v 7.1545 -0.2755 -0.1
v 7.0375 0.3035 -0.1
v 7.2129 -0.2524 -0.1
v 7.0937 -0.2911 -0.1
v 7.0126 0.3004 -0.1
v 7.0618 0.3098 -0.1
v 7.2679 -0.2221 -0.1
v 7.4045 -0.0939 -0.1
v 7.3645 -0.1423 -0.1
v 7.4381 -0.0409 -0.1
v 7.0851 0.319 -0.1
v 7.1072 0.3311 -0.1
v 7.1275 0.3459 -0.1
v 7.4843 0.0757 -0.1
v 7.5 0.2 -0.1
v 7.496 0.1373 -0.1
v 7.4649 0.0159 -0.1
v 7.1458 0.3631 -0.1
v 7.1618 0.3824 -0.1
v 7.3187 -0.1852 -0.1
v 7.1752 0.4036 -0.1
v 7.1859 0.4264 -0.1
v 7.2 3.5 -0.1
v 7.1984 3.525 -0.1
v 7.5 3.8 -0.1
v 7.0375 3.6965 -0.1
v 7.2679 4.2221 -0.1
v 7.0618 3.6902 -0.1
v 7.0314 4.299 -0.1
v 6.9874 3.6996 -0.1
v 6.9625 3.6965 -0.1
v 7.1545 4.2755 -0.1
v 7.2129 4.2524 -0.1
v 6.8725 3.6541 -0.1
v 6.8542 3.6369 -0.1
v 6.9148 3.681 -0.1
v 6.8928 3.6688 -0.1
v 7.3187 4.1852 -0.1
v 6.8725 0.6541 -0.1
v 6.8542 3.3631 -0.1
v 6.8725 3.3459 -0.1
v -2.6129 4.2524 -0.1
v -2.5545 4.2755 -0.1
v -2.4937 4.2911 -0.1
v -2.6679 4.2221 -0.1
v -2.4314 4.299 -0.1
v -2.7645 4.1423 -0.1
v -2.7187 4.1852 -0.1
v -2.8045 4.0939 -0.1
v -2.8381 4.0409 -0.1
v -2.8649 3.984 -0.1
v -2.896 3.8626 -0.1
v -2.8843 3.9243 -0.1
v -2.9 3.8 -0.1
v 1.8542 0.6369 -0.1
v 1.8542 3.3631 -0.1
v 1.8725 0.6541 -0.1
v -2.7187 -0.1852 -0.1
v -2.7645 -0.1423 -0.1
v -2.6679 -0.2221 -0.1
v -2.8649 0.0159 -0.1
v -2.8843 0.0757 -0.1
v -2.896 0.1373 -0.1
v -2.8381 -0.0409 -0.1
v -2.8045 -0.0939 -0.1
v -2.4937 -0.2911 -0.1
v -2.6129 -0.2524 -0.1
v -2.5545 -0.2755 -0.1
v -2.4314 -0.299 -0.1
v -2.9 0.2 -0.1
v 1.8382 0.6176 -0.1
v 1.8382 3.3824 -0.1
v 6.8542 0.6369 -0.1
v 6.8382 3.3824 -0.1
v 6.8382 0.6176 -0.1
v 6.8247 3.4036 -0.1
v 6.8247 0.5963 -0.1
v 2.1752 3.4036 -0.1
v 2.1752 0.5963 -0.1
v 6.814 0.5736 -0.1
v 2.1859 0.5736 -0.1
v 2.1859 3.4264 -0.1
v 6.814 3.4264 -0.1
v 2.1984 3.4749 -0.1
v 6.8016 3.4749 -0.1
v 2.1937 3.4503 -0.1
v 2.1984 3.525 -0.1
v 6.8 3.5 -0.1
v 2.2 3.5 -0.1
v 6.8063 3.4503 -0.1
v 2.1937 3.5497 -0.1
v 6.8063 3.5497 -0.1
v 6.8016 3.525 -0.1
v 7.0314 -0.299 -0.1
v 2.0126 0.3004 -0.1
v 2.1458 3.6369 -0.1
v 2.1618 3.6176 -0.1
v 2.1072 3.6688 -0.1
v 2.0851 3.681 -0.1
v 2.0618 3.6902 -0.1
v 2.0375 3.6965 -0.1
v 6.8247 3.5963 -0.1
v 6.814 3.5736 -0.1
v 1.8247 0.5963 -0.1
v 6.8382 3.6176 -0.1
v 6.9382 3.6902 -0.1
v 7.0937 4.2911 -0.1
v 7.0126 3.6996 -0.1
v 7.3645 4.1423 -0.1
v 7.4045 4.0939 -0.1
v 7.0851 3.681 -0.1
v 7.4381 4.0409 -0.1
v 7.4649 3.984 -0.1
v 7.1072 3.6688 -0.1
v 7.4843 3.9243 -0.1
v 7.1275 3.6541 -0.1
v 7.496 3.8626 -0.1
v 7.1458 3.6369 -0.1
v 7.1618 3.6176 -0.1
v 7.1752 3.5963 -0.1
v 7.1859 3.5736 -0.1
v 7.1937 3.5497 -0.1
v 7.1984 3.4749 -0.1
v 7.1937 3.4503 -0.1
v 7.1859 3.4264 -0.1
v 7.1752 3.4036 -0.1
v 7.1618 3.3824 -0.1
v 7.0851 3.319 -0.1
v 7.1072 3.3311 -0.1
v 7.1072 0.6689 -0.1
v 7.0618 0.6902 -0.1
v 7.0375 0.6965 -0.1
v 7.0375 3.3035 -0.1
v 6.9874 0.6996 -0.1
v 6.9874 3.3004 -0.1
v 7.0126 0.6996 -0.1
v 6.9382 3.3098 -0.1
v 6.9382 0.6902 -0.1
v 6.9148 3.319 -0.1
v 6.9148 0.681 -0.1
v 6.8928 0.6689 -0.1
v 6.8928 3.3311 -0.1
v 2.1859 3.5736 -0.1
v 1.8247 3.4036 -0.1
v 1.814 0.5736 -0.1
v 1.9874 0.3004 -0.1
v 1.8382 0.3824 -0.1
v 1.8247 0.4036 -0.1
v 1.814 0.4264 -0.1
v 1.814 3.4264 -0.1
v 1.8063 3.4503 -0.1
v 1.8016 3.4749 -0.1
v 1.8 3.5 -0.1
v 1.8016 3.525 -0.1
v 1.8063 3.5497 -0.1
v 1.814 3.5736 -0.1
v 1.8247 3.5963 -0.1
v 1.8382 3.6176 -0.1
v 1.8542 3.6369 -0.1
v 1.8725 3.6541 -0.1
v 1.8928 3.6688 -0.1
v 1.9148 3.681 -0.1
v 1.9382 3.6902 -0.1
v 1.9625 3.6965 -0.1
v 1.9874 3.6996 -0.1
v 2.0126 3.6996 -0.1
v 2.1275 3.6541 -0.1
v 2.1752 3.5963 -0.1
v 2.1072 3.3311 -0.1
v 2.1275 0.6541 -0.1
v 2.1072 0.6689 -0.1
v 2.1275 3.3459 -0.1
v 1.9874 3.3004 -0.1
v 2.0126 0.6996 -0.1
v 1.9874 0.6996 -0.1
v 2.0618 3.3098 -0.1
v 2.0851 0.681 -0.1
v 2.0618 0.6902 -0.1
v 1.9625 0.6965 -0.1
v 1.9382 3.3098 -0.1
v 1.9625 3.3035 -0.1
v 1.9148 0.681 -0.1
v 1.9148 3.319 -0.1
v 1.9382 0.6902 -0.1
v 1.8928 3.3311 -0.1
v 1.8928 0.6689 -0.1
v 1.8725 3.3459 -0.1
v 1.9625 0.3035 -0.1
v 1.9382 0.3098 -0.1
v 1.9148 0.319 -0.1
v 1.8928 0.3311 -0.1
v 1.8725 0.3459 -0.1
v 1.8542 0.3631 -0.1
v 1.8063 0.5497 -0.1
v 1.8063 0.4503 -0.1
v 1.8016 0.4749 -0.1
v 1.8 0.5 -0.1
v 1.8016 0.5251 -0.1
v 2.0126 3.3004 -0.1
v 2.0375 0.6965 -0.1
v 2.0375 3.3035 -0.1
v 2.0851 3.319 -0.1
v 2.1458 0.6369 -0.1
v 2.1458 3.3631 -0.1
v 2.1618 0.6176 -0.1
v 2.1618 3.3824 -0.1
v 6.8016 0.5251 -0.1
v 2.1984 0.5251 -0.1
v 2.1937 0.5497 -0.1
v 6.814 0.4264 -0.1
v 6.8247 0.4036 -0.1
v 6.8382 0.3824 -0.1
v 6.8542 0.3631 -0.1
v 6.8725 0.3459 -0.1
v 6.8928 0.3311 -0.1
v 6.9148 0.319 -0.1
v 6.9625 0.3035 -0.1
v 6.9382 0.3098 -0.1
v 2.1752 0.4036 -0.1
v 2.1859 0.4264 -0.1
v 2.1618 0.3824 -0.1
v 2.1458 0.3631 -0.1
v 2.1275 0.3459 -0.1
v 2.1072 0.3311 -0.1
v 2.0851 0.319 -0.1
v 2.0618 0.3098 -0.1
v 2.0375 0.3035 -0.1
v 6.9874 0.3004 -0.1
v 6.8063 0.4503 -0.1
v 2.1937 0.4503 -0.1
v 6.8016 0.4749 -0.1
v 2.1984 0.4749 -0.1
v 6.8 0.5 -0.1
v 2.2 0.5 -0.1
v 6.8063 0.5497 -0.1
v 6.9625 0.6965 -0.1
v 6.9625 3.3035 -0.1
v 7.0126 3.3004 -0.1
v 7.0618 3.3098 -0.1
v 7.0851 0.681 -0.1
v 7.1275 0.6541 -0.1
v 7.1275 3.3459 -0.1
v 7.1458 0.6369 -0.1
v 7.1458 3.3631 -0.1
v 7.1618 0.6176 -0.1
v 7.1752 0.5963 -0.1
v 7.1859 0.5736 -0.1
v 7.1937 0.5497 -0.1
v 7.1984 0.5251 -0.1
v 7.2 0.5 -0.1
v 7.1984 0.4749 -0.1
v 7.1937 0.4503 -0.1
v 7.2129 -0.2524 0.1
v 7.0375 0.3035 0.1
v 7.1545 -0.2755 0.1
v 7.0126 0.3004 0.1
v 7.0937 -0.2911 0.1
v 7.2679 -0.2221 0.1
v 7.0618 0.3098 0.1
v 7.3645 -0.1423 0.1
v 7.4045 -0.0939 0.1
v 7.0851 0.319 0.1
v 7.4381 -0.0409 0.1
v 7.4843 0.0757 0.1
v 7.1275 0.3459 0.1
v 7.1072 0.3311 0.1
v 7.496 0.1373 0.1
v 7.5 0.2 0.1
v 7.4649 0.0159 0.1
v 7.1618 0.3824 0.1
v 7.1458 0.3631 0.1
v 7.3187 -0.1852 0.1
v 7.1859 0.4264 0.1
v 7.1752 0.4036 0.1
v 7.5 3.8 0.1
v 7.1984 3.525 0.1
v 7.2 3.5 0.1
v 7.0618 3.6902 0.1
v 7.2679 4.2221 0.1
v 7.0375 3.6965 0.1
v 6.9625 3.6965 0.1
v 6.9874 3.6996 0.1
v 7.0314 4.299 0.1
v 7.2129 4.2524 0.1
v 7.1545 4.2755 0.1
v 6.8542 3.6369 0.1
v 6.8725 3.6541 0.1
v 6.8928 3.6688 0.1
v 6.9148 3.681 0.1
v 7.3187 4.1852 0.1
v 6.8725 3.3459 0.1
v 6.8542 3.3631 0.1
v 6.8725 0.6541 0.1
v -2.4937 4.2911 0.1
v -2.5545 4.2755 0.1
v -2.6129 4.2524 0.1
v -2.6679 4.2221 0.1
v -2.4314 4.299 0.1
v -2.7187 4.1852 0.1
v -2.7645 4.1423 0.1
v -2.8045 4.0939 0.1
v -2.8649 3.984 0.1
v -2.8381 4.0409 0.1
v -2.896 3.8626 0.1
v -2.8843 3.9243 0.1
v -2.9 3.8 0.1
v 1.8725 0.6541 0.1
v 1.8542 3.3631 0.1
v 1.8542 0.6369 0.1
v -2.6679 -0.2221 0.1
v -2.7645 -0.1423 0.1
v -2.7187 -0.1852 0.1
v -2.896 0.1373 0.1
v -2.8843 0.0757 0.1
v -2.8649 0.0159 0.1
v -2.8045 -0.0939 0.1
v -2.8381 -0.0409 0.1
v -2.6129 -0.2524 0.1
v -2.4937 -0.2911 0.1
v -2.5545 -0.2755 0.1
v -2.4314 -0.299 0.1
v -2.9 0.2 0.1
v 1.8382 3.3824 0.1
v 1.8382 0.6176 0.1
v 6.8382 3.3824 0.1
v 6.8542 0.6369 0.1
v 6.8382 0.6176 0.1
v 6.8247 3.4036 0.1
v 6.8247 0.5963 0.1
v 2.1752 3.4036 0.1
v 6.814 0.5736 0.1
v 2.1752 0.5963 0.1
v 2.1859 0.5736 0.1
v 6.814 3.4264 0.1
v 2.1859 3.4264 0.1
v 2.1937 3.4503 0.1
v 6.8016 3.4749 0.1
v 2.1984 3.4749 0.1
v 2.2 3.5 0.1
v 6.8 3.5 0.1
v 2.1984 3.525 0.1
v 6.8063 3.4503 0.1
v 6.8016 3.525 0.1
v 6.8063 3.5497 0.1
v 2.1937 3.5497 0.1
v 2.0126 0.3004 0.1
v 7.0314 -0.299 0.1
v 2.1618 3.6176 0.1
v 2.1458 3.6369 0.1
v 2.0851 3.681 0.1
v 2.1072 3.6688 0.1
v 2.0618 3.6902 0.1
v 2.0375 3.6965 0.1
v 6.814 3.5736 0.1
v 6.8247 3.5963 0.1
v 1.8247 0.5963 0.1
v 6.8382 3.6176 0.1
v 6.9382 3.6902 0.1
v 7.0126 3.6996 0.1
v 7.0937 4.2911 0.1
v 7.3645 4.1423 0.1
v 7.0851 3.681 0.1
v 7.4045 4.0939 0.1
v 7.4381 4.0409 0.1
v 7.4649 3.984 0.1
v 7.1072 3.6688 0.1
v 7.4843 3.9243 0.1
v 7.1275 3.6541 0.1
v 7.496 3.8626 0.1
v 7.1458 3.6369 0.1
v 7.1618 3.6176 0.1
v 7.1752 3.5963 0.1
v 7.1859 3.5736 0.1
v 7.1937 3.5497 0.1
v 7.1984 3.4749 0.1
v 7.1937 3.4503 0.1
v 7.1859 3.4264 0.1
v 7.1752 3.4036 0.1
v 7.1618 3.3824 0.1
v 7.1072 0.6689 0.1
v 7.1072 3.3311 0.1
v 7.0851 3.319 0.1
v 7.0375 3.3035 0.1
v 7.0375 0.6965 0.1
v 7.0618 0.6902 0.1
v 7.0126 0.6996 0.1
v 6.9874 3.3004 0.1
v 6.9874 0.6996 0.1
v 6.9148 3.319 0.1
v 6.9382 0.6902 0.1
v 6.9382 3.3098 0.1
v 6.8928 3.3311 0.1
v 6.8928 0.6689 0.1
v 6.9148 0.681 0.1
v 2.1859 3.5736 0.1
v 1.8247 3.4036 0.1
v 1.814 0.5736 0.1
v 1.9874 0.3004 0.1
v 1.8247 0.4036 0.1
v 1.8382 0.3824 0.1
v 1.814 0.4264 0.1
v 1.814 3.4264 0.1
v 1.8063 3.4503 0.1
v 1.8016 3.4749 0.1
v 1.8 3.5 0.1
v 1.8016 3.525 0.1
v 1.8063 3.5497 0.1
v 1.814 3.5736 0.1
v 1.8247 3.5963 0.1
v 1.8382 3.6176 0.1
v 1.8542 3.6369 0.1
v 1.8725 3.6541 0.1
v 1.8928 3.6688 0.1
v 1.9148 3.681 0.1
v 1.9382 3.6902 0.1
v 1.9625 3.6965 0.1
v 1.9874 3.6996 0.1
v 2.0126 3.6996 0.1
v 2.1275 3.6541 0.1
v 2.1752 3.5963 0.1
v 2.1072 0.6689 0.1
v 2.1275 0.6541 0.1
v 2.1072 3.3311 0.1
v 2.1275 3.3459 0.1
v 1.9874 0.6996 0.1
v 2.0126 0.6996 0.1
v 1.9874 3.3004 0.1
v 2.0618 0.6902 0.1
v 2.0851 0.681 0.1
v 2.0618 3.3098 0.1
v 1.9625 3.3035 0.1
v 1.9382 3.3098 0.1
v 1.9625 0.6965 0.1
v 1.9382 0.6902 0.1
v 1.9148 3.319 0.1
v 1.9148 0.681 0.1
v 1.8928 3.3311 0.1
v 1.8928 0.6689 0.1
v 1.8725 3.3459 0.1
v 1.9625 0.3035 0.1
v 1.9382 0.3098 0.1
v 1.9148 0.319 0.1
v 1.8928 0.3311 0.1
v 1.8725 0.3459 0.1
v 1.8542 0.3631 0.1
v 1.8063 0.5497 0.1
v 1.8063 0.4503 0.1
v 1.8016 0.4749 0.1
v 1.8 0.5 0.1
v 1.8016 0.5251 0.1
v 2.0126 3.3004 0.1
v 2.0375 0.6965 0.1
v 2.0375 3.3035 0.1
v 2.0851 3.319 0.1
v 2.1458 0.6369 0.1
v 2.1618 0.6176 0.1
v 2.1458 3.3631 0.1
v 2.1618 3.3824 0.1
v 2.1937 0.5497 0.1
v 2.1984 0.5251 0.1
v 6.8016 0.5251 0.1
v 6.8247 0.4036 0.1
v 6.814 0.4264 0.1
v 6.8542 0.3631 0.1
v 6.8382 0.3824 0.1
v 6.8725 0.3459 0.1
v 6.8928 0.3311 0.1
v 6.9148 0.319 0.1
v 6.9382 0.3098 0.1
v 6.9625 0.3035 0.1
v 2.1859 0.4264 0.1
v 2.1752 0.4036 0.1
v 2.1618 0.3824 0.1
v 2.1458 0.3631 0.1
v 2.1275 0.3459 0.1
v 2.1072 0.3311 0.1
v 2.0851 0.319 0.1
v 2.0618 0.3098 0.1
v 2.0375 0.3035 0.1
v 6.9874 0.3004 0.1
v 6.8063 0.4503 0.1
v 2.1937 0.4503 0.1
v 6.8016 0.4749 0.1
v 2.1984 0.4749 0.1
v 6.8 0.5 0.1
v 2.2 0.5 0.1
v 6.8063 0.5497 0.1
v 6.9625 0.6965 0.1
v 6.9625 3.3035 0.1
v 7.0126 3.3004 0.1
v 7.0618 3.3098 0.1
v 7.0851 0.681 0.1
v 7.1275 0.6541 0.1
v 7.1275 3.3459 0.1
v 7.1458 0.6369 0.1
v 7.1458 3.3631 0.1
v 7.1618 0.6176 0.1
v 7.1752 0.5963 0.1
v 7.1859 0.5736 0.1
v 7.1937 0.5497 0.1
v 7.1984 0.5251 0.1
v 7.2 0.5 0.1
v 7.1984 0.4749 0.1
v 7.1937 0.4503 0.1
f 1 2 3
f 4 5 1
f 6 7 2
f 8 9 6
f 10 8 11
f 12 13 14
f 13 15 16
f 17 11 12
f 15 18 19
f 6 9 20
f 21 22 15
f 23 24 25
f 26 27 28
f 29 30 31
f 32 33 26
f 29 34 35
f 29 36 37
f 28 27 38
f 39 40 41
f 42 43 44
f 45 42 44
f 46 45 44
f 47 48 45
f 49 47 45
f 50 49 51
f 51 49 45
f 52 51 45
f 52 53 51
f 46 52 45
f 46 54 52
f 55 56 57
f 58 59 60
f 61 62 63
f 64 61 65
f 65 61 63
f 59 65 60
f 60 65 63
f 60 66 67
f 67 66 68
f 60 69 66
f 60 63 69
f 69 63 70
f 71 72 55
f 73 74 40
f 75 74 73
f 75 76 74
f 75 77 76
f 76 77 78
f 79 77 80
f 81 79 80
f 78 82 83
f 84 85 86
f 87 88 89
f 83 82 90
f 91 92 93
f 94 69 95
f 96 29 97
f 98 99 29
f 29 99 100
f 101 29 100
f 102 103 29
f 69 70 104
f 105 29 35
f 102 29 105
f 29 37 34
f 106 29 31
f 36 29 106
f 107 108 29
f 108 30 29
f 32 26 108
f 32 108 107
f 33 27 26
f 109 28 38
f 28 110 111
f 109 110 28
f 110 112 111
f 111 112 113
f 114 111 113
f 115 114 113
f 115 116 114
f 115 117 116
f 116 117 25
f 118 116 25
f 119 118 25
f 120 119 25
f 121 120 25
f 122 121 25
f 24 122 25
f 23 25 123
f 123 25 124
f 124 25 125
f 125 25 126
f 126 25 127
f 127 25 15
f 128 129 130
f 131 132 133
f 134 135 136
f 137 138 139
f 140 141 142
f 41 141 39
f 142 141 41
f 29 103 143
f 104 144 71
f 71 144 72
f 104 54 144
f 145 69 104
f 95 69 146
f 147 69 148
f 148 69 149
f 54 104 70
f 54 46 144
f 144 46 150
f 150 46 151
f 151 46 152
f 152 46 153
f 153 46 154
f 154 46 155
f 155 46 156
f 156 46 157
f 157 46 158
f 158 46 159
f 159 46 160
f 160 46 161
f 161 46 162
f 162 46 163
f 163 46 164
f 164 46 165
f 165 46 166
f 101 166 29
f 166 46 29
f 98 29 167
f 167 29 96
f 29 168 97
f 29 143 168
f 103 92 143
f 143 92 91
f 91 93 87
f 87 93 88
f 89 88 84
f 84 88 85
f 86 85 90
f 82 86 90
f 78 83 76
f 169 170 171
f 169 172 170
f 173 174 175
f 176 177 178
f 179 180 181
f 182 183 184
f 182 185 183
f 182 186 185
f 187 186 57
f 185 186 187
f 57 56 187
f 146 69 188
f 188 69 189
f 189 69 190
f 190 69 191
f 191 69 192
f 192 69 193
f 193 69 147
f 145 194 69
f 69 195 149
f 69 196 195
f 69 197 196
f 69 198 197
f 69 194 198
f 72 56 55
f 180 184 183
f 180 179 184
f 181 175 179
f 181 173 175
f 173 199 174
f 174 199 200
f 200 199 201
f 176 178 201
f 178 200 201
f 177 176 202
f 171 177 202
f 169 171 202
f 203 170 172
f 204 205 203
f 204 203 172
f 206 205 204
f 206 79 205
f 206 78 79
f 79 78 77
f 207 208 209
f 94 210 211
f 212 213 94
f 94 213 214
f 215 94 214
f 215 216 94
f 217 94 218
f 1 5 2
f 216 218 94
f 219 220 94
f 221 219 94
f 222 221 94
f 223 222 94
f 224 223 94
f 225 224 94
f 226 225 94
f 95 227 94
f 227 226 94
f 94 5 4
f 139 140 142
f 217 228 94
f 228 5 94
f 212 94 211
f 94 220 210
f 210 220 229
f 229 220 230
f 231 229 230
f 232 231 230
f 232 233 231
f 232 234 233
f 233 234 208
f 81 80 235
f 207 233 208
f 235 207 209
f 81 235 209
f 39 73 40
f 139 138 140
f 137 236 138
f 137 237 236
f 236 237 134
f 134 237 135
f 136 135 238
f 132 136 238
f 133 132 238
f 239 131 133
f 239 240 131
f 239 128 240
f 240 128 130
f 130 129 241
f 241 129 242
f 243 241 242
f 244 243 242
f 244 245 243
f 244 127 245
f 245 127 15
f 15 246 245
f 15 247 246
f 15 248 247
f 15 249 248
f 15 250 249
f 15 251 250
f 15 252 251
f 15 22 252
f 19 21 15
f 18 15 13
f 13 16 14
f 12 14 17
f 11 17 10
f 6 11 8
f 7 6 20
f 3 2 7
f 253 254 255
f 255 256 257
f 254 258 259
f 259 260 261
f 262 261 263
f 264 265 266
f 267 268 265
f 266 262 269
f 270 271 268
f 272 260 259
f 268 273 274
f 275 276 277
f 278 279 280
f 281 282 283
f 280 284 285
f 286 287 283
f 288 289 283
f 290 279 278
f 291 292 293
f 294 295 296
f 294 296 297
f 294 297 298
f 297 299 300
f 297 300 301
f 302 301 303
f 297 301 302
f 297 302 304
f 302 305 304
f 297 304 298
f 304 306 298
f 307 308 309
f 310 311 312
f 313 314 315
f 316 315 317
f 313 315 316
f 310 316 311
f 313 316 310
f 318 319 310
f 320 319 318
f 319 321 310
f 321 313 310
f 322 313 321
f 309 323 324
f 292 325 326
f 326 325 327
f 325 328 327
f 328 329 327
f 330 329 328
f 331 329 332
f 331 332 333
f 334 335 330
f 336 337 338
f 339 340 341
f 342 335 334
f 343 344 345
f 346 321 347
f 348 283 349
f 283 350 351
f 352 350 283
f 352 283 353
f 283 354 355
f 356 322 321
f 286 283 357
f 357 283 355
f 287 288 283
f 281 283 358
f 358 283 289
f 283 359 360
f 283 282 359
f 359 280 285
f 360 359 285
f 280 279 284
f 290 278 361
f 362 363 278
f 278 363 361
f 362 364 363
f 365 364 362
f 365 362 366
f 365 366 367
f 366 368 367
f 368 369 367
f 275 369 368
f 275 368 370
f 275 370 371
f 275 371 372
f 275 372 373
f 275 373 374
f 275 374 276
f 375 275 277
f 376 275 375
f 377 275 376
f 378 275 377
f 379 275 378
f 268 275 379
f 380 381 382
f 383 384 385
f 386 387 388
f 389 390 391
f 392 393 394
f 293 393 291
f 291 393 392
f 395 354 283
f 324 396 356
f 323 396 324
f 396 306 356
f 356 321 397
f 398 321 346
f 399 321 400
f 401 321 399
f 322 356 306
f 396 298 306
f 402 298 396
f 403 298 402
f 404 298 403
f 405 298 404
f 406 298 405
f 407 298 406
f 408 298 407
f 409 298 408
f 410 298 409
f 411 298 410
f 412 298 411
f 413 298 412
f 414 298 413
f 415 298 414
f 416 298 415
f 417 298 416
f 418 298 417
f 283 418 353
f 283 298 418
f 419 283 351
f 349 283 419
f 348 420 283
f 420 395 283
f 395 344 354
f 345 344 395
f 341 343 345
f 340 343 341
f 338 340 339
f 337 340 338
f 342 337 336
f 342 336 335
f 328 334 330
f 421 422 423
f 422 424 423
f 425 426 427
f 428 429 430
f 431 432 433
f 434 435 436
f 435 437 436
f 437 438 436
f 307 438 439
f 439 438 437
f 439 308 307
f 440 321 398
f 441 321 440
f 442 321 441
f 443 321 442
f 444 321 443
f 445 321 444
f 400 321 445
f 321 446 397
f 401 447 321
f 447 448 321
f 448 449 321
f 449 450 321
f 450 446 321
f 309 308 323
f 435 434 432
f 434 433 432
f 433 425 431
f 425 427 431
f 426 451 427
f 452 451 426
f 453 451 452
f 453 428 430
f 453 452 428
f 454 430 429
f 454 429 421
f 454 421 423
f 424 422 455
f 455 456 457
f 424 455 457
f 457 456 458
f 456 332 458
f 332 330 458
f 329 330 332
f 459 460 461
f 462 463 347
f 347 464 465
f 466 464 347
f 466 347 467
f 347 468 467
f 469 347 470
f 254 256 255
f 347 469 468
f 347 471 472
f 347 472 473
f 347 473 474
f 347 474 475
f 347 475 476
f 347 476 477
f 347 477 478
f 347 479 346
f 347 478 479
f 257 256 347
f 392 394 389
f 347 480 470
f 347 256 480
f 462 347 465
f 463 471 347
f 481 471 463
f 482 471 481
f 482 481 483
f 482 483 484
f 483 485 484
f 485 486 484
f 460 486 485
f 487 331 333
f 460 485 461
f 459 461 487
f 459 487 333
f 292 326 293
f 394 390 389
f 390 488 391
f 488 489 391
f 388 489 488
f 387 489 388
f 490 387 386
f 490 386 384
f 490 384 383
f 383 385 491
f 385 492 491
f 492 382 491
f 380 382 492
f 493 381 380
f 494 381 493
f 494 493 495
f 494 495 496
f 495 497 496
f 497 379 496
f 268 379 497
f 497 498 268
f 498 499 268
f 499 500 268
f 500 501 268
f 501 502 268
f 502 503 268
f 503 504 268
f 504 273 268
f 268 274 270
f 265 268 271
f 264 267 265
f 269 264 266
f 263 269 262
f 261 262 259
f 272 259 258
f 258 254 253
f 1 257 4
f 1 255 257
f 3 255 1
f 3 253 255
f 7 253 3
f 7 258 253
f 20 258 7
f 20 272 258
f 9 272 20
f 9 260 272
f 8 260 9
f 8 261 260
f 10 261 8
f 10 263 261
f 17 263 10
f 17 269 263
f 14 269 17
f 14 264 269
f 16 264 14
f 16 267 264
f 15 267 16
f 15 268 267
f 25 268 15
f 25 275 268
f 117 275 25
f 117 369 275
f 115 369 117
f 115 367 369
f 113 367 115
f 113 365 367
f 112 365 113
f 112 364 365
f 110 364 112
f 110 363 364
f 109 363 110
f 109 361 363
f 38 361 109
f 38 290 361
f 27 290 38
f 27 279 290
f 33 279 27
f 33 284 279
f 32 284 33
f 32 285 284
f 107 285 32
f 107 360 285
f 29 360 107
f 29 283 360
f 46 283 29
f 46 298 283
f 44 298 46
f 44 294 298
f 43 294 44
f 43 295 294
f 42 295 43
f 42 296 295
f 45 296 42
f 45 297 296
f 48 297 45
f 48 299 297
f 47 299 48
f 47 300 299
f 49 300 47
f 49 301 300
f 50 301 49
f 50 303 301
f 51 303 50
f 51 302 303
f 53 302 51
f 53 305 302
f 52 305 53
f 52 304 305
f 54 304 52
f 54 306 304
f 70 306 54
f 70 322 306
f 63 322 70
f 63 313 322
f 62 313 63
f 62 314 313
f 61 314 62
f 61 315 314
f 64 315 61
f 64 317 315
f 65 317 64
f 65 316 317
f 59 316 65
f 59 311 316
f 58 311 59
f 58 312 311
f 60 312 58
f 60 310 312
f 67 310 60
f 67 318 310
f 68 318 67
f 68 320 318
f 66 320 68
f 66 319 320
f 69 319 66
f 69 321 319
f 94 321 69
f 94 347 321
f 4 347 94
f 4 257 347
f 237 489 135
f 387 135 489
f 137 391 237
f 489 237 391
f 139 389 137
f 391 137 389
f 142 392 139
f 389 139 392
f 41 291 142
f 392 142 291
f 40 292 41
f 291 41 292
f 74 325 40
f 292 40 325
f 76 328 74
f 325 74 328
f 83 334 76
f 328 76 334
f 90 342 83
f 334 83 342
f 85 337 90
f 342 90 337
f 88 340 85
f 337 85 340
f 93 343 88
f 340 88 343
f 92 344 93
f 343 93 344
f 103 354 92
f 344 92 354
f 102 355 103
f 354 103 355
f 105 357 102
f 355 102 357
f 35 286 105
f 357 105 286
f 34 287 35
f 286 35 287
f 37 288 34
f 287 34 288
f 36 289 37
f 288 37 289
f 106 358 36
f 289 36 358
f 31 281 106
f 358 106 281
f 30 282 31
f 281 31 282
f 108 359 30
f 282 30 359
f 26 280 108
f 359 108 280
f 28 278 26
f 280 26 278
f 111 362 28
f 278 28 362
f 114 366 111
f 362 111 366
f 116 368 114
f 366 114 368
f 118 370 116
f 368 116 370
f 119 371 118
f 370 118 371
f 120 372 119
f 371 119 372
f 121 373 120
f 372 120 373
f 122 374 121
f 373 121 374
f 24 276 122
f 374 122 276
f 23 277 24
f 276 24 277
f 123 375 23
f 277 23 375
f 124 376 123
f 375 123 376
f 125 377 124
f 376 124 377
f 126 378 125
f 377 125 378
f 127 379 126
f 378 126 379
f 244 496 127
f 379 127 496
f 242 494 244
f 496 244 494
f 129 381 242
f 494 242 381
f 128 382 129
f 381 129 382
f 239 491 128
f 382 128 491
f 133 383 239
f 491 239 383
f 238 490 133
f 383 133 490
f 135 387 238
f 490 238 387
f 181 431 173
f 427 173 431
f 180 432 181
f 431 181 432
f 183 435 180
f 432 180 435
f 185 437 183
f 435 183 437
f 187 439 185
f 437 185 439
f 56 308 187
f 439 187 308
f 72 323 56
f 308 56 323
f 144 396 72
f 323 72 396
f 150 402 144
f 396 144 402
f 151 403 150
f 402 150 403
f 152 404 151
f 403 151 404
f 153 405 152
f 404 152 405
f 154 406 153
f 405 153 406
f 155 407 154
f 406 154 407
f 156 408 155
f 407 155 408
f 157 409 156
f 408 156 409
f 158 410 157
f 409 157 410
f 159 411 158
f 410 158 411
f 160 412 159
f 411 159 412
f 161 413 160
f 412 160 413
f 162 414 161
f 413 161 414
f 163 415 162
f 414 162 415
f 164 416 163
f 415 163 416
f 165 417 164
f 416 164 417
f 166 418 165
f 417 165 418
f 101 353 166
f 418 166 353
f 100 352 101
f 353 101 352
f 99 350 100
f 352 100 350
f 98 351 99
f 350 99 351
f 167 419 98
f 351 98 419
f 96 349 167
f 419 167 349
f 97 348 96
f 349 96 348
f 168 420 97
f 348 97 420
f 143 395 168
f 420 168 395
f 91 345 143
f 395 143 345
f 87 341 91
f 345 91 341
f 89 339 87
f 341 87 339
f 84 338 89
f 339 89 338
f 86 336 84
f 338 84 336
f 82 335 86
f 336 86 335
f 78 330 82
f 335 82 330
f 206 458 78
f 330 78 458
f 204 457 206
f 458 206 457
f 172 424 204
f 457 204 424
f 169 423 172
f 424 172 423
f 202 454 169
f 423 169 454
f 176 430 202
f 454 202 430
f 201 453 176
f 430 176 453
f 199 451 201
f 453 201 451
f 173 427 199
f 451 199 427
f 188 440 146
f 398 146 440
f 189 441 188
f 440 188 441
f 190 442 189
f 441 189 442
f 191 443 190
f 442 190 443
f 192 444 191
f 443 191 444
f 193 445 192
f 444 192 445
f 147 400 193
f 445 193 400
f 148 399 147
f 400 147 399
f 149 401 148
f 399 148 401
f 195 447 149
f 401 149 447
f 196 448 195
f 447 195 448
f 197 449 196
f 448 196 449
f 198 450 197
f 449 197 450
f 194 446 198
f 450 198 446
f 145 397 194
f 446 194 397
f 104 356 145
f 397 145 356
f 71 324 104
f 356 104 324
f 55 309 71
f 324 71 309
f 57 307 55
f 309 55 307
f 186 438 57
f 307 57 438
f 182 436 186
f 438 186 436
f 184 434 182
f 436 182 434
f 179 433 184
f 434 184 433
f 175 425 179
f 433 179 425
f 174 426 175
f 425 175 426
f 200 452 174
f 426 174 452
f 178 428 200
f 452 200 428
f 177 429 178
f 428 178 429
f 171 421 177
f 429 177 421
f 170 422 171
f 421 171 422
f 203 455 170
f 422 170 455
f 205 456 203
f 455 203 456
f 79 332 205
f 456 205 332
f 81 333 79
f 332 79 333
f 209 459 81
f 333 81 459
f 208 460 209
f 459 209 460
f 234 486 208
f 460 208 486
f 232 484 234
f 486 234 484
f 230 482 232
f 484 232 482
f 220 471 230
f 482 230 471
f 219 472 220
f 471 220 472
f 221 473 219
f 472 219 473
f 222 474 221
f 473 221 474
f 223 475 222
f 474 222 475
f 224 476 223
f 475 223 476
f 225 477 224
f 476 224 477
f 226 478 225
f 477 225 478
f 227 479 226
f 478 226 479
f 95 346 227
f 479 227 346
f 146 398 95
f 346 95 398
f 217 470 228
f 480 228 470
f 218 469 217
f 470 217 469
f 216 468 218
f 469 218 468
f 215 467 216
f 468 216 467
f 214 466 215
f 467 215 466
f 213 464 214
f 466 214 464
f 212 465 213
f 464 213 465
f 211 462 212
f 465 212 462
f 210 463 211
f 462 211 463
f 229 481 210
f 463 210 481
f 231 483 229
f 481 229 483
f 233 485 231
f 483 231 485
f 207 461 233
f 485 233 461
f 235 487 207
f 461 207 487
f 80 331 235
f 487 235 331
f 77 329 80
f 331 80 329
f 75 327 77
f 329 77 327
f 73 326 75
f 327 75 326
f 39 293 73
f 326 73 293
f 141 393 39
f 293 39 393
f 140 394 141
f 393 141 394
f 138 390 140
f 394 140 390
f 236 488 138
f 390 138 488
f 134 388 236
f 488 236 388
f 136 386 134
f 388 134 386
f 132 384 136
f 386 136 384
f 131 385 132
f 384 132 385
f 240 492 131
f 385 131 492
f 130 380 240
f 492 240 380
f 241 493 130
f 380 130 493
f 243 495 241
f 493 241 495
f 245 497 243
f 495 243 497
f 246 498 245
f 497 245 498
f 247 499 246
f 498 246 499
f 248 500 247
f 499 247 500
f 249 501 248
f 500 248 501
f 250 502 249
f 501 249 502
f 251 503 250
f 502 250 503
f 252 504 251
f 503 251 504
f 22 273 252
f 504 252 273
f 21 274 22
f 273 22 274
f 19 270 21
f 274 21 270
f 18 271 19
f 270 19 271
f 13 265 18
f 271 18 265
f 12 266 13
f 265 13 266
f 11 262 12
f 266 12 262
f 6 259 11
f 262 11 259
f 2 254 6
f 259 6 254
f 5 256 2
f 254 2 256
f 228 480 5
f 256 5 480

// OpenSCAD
module roundedSquare( width, length, radiusCorner ) {
	translate( [ radiusCorner, radiusCorner, 0 ] )
		minkowski() {
			square( [width - 2 * radiusCorner, length - 2 * radiusCorner], false);
			circle(radiusCorner, $fn=50);
		}
}

//Make it 3D
linear_extrude(height = 0.2, center = true, convexity = 10, twist = 0)

difference()
{
    translate([-2.9,-0.3])
        roundedSquare(10.4, 4.6, 0.5);
    
    // Mounting holes
    translate([2,0.5])
        circle(0.2, true, $fn=50);
    translate([7,0.5])
        circle(0.2, true, $fn=50);
    translate([7,3.5])
        circle(0.2, true, $fn=50);
    translate([2,3.5])
        circle(0.2, true, $fn=50);
}
